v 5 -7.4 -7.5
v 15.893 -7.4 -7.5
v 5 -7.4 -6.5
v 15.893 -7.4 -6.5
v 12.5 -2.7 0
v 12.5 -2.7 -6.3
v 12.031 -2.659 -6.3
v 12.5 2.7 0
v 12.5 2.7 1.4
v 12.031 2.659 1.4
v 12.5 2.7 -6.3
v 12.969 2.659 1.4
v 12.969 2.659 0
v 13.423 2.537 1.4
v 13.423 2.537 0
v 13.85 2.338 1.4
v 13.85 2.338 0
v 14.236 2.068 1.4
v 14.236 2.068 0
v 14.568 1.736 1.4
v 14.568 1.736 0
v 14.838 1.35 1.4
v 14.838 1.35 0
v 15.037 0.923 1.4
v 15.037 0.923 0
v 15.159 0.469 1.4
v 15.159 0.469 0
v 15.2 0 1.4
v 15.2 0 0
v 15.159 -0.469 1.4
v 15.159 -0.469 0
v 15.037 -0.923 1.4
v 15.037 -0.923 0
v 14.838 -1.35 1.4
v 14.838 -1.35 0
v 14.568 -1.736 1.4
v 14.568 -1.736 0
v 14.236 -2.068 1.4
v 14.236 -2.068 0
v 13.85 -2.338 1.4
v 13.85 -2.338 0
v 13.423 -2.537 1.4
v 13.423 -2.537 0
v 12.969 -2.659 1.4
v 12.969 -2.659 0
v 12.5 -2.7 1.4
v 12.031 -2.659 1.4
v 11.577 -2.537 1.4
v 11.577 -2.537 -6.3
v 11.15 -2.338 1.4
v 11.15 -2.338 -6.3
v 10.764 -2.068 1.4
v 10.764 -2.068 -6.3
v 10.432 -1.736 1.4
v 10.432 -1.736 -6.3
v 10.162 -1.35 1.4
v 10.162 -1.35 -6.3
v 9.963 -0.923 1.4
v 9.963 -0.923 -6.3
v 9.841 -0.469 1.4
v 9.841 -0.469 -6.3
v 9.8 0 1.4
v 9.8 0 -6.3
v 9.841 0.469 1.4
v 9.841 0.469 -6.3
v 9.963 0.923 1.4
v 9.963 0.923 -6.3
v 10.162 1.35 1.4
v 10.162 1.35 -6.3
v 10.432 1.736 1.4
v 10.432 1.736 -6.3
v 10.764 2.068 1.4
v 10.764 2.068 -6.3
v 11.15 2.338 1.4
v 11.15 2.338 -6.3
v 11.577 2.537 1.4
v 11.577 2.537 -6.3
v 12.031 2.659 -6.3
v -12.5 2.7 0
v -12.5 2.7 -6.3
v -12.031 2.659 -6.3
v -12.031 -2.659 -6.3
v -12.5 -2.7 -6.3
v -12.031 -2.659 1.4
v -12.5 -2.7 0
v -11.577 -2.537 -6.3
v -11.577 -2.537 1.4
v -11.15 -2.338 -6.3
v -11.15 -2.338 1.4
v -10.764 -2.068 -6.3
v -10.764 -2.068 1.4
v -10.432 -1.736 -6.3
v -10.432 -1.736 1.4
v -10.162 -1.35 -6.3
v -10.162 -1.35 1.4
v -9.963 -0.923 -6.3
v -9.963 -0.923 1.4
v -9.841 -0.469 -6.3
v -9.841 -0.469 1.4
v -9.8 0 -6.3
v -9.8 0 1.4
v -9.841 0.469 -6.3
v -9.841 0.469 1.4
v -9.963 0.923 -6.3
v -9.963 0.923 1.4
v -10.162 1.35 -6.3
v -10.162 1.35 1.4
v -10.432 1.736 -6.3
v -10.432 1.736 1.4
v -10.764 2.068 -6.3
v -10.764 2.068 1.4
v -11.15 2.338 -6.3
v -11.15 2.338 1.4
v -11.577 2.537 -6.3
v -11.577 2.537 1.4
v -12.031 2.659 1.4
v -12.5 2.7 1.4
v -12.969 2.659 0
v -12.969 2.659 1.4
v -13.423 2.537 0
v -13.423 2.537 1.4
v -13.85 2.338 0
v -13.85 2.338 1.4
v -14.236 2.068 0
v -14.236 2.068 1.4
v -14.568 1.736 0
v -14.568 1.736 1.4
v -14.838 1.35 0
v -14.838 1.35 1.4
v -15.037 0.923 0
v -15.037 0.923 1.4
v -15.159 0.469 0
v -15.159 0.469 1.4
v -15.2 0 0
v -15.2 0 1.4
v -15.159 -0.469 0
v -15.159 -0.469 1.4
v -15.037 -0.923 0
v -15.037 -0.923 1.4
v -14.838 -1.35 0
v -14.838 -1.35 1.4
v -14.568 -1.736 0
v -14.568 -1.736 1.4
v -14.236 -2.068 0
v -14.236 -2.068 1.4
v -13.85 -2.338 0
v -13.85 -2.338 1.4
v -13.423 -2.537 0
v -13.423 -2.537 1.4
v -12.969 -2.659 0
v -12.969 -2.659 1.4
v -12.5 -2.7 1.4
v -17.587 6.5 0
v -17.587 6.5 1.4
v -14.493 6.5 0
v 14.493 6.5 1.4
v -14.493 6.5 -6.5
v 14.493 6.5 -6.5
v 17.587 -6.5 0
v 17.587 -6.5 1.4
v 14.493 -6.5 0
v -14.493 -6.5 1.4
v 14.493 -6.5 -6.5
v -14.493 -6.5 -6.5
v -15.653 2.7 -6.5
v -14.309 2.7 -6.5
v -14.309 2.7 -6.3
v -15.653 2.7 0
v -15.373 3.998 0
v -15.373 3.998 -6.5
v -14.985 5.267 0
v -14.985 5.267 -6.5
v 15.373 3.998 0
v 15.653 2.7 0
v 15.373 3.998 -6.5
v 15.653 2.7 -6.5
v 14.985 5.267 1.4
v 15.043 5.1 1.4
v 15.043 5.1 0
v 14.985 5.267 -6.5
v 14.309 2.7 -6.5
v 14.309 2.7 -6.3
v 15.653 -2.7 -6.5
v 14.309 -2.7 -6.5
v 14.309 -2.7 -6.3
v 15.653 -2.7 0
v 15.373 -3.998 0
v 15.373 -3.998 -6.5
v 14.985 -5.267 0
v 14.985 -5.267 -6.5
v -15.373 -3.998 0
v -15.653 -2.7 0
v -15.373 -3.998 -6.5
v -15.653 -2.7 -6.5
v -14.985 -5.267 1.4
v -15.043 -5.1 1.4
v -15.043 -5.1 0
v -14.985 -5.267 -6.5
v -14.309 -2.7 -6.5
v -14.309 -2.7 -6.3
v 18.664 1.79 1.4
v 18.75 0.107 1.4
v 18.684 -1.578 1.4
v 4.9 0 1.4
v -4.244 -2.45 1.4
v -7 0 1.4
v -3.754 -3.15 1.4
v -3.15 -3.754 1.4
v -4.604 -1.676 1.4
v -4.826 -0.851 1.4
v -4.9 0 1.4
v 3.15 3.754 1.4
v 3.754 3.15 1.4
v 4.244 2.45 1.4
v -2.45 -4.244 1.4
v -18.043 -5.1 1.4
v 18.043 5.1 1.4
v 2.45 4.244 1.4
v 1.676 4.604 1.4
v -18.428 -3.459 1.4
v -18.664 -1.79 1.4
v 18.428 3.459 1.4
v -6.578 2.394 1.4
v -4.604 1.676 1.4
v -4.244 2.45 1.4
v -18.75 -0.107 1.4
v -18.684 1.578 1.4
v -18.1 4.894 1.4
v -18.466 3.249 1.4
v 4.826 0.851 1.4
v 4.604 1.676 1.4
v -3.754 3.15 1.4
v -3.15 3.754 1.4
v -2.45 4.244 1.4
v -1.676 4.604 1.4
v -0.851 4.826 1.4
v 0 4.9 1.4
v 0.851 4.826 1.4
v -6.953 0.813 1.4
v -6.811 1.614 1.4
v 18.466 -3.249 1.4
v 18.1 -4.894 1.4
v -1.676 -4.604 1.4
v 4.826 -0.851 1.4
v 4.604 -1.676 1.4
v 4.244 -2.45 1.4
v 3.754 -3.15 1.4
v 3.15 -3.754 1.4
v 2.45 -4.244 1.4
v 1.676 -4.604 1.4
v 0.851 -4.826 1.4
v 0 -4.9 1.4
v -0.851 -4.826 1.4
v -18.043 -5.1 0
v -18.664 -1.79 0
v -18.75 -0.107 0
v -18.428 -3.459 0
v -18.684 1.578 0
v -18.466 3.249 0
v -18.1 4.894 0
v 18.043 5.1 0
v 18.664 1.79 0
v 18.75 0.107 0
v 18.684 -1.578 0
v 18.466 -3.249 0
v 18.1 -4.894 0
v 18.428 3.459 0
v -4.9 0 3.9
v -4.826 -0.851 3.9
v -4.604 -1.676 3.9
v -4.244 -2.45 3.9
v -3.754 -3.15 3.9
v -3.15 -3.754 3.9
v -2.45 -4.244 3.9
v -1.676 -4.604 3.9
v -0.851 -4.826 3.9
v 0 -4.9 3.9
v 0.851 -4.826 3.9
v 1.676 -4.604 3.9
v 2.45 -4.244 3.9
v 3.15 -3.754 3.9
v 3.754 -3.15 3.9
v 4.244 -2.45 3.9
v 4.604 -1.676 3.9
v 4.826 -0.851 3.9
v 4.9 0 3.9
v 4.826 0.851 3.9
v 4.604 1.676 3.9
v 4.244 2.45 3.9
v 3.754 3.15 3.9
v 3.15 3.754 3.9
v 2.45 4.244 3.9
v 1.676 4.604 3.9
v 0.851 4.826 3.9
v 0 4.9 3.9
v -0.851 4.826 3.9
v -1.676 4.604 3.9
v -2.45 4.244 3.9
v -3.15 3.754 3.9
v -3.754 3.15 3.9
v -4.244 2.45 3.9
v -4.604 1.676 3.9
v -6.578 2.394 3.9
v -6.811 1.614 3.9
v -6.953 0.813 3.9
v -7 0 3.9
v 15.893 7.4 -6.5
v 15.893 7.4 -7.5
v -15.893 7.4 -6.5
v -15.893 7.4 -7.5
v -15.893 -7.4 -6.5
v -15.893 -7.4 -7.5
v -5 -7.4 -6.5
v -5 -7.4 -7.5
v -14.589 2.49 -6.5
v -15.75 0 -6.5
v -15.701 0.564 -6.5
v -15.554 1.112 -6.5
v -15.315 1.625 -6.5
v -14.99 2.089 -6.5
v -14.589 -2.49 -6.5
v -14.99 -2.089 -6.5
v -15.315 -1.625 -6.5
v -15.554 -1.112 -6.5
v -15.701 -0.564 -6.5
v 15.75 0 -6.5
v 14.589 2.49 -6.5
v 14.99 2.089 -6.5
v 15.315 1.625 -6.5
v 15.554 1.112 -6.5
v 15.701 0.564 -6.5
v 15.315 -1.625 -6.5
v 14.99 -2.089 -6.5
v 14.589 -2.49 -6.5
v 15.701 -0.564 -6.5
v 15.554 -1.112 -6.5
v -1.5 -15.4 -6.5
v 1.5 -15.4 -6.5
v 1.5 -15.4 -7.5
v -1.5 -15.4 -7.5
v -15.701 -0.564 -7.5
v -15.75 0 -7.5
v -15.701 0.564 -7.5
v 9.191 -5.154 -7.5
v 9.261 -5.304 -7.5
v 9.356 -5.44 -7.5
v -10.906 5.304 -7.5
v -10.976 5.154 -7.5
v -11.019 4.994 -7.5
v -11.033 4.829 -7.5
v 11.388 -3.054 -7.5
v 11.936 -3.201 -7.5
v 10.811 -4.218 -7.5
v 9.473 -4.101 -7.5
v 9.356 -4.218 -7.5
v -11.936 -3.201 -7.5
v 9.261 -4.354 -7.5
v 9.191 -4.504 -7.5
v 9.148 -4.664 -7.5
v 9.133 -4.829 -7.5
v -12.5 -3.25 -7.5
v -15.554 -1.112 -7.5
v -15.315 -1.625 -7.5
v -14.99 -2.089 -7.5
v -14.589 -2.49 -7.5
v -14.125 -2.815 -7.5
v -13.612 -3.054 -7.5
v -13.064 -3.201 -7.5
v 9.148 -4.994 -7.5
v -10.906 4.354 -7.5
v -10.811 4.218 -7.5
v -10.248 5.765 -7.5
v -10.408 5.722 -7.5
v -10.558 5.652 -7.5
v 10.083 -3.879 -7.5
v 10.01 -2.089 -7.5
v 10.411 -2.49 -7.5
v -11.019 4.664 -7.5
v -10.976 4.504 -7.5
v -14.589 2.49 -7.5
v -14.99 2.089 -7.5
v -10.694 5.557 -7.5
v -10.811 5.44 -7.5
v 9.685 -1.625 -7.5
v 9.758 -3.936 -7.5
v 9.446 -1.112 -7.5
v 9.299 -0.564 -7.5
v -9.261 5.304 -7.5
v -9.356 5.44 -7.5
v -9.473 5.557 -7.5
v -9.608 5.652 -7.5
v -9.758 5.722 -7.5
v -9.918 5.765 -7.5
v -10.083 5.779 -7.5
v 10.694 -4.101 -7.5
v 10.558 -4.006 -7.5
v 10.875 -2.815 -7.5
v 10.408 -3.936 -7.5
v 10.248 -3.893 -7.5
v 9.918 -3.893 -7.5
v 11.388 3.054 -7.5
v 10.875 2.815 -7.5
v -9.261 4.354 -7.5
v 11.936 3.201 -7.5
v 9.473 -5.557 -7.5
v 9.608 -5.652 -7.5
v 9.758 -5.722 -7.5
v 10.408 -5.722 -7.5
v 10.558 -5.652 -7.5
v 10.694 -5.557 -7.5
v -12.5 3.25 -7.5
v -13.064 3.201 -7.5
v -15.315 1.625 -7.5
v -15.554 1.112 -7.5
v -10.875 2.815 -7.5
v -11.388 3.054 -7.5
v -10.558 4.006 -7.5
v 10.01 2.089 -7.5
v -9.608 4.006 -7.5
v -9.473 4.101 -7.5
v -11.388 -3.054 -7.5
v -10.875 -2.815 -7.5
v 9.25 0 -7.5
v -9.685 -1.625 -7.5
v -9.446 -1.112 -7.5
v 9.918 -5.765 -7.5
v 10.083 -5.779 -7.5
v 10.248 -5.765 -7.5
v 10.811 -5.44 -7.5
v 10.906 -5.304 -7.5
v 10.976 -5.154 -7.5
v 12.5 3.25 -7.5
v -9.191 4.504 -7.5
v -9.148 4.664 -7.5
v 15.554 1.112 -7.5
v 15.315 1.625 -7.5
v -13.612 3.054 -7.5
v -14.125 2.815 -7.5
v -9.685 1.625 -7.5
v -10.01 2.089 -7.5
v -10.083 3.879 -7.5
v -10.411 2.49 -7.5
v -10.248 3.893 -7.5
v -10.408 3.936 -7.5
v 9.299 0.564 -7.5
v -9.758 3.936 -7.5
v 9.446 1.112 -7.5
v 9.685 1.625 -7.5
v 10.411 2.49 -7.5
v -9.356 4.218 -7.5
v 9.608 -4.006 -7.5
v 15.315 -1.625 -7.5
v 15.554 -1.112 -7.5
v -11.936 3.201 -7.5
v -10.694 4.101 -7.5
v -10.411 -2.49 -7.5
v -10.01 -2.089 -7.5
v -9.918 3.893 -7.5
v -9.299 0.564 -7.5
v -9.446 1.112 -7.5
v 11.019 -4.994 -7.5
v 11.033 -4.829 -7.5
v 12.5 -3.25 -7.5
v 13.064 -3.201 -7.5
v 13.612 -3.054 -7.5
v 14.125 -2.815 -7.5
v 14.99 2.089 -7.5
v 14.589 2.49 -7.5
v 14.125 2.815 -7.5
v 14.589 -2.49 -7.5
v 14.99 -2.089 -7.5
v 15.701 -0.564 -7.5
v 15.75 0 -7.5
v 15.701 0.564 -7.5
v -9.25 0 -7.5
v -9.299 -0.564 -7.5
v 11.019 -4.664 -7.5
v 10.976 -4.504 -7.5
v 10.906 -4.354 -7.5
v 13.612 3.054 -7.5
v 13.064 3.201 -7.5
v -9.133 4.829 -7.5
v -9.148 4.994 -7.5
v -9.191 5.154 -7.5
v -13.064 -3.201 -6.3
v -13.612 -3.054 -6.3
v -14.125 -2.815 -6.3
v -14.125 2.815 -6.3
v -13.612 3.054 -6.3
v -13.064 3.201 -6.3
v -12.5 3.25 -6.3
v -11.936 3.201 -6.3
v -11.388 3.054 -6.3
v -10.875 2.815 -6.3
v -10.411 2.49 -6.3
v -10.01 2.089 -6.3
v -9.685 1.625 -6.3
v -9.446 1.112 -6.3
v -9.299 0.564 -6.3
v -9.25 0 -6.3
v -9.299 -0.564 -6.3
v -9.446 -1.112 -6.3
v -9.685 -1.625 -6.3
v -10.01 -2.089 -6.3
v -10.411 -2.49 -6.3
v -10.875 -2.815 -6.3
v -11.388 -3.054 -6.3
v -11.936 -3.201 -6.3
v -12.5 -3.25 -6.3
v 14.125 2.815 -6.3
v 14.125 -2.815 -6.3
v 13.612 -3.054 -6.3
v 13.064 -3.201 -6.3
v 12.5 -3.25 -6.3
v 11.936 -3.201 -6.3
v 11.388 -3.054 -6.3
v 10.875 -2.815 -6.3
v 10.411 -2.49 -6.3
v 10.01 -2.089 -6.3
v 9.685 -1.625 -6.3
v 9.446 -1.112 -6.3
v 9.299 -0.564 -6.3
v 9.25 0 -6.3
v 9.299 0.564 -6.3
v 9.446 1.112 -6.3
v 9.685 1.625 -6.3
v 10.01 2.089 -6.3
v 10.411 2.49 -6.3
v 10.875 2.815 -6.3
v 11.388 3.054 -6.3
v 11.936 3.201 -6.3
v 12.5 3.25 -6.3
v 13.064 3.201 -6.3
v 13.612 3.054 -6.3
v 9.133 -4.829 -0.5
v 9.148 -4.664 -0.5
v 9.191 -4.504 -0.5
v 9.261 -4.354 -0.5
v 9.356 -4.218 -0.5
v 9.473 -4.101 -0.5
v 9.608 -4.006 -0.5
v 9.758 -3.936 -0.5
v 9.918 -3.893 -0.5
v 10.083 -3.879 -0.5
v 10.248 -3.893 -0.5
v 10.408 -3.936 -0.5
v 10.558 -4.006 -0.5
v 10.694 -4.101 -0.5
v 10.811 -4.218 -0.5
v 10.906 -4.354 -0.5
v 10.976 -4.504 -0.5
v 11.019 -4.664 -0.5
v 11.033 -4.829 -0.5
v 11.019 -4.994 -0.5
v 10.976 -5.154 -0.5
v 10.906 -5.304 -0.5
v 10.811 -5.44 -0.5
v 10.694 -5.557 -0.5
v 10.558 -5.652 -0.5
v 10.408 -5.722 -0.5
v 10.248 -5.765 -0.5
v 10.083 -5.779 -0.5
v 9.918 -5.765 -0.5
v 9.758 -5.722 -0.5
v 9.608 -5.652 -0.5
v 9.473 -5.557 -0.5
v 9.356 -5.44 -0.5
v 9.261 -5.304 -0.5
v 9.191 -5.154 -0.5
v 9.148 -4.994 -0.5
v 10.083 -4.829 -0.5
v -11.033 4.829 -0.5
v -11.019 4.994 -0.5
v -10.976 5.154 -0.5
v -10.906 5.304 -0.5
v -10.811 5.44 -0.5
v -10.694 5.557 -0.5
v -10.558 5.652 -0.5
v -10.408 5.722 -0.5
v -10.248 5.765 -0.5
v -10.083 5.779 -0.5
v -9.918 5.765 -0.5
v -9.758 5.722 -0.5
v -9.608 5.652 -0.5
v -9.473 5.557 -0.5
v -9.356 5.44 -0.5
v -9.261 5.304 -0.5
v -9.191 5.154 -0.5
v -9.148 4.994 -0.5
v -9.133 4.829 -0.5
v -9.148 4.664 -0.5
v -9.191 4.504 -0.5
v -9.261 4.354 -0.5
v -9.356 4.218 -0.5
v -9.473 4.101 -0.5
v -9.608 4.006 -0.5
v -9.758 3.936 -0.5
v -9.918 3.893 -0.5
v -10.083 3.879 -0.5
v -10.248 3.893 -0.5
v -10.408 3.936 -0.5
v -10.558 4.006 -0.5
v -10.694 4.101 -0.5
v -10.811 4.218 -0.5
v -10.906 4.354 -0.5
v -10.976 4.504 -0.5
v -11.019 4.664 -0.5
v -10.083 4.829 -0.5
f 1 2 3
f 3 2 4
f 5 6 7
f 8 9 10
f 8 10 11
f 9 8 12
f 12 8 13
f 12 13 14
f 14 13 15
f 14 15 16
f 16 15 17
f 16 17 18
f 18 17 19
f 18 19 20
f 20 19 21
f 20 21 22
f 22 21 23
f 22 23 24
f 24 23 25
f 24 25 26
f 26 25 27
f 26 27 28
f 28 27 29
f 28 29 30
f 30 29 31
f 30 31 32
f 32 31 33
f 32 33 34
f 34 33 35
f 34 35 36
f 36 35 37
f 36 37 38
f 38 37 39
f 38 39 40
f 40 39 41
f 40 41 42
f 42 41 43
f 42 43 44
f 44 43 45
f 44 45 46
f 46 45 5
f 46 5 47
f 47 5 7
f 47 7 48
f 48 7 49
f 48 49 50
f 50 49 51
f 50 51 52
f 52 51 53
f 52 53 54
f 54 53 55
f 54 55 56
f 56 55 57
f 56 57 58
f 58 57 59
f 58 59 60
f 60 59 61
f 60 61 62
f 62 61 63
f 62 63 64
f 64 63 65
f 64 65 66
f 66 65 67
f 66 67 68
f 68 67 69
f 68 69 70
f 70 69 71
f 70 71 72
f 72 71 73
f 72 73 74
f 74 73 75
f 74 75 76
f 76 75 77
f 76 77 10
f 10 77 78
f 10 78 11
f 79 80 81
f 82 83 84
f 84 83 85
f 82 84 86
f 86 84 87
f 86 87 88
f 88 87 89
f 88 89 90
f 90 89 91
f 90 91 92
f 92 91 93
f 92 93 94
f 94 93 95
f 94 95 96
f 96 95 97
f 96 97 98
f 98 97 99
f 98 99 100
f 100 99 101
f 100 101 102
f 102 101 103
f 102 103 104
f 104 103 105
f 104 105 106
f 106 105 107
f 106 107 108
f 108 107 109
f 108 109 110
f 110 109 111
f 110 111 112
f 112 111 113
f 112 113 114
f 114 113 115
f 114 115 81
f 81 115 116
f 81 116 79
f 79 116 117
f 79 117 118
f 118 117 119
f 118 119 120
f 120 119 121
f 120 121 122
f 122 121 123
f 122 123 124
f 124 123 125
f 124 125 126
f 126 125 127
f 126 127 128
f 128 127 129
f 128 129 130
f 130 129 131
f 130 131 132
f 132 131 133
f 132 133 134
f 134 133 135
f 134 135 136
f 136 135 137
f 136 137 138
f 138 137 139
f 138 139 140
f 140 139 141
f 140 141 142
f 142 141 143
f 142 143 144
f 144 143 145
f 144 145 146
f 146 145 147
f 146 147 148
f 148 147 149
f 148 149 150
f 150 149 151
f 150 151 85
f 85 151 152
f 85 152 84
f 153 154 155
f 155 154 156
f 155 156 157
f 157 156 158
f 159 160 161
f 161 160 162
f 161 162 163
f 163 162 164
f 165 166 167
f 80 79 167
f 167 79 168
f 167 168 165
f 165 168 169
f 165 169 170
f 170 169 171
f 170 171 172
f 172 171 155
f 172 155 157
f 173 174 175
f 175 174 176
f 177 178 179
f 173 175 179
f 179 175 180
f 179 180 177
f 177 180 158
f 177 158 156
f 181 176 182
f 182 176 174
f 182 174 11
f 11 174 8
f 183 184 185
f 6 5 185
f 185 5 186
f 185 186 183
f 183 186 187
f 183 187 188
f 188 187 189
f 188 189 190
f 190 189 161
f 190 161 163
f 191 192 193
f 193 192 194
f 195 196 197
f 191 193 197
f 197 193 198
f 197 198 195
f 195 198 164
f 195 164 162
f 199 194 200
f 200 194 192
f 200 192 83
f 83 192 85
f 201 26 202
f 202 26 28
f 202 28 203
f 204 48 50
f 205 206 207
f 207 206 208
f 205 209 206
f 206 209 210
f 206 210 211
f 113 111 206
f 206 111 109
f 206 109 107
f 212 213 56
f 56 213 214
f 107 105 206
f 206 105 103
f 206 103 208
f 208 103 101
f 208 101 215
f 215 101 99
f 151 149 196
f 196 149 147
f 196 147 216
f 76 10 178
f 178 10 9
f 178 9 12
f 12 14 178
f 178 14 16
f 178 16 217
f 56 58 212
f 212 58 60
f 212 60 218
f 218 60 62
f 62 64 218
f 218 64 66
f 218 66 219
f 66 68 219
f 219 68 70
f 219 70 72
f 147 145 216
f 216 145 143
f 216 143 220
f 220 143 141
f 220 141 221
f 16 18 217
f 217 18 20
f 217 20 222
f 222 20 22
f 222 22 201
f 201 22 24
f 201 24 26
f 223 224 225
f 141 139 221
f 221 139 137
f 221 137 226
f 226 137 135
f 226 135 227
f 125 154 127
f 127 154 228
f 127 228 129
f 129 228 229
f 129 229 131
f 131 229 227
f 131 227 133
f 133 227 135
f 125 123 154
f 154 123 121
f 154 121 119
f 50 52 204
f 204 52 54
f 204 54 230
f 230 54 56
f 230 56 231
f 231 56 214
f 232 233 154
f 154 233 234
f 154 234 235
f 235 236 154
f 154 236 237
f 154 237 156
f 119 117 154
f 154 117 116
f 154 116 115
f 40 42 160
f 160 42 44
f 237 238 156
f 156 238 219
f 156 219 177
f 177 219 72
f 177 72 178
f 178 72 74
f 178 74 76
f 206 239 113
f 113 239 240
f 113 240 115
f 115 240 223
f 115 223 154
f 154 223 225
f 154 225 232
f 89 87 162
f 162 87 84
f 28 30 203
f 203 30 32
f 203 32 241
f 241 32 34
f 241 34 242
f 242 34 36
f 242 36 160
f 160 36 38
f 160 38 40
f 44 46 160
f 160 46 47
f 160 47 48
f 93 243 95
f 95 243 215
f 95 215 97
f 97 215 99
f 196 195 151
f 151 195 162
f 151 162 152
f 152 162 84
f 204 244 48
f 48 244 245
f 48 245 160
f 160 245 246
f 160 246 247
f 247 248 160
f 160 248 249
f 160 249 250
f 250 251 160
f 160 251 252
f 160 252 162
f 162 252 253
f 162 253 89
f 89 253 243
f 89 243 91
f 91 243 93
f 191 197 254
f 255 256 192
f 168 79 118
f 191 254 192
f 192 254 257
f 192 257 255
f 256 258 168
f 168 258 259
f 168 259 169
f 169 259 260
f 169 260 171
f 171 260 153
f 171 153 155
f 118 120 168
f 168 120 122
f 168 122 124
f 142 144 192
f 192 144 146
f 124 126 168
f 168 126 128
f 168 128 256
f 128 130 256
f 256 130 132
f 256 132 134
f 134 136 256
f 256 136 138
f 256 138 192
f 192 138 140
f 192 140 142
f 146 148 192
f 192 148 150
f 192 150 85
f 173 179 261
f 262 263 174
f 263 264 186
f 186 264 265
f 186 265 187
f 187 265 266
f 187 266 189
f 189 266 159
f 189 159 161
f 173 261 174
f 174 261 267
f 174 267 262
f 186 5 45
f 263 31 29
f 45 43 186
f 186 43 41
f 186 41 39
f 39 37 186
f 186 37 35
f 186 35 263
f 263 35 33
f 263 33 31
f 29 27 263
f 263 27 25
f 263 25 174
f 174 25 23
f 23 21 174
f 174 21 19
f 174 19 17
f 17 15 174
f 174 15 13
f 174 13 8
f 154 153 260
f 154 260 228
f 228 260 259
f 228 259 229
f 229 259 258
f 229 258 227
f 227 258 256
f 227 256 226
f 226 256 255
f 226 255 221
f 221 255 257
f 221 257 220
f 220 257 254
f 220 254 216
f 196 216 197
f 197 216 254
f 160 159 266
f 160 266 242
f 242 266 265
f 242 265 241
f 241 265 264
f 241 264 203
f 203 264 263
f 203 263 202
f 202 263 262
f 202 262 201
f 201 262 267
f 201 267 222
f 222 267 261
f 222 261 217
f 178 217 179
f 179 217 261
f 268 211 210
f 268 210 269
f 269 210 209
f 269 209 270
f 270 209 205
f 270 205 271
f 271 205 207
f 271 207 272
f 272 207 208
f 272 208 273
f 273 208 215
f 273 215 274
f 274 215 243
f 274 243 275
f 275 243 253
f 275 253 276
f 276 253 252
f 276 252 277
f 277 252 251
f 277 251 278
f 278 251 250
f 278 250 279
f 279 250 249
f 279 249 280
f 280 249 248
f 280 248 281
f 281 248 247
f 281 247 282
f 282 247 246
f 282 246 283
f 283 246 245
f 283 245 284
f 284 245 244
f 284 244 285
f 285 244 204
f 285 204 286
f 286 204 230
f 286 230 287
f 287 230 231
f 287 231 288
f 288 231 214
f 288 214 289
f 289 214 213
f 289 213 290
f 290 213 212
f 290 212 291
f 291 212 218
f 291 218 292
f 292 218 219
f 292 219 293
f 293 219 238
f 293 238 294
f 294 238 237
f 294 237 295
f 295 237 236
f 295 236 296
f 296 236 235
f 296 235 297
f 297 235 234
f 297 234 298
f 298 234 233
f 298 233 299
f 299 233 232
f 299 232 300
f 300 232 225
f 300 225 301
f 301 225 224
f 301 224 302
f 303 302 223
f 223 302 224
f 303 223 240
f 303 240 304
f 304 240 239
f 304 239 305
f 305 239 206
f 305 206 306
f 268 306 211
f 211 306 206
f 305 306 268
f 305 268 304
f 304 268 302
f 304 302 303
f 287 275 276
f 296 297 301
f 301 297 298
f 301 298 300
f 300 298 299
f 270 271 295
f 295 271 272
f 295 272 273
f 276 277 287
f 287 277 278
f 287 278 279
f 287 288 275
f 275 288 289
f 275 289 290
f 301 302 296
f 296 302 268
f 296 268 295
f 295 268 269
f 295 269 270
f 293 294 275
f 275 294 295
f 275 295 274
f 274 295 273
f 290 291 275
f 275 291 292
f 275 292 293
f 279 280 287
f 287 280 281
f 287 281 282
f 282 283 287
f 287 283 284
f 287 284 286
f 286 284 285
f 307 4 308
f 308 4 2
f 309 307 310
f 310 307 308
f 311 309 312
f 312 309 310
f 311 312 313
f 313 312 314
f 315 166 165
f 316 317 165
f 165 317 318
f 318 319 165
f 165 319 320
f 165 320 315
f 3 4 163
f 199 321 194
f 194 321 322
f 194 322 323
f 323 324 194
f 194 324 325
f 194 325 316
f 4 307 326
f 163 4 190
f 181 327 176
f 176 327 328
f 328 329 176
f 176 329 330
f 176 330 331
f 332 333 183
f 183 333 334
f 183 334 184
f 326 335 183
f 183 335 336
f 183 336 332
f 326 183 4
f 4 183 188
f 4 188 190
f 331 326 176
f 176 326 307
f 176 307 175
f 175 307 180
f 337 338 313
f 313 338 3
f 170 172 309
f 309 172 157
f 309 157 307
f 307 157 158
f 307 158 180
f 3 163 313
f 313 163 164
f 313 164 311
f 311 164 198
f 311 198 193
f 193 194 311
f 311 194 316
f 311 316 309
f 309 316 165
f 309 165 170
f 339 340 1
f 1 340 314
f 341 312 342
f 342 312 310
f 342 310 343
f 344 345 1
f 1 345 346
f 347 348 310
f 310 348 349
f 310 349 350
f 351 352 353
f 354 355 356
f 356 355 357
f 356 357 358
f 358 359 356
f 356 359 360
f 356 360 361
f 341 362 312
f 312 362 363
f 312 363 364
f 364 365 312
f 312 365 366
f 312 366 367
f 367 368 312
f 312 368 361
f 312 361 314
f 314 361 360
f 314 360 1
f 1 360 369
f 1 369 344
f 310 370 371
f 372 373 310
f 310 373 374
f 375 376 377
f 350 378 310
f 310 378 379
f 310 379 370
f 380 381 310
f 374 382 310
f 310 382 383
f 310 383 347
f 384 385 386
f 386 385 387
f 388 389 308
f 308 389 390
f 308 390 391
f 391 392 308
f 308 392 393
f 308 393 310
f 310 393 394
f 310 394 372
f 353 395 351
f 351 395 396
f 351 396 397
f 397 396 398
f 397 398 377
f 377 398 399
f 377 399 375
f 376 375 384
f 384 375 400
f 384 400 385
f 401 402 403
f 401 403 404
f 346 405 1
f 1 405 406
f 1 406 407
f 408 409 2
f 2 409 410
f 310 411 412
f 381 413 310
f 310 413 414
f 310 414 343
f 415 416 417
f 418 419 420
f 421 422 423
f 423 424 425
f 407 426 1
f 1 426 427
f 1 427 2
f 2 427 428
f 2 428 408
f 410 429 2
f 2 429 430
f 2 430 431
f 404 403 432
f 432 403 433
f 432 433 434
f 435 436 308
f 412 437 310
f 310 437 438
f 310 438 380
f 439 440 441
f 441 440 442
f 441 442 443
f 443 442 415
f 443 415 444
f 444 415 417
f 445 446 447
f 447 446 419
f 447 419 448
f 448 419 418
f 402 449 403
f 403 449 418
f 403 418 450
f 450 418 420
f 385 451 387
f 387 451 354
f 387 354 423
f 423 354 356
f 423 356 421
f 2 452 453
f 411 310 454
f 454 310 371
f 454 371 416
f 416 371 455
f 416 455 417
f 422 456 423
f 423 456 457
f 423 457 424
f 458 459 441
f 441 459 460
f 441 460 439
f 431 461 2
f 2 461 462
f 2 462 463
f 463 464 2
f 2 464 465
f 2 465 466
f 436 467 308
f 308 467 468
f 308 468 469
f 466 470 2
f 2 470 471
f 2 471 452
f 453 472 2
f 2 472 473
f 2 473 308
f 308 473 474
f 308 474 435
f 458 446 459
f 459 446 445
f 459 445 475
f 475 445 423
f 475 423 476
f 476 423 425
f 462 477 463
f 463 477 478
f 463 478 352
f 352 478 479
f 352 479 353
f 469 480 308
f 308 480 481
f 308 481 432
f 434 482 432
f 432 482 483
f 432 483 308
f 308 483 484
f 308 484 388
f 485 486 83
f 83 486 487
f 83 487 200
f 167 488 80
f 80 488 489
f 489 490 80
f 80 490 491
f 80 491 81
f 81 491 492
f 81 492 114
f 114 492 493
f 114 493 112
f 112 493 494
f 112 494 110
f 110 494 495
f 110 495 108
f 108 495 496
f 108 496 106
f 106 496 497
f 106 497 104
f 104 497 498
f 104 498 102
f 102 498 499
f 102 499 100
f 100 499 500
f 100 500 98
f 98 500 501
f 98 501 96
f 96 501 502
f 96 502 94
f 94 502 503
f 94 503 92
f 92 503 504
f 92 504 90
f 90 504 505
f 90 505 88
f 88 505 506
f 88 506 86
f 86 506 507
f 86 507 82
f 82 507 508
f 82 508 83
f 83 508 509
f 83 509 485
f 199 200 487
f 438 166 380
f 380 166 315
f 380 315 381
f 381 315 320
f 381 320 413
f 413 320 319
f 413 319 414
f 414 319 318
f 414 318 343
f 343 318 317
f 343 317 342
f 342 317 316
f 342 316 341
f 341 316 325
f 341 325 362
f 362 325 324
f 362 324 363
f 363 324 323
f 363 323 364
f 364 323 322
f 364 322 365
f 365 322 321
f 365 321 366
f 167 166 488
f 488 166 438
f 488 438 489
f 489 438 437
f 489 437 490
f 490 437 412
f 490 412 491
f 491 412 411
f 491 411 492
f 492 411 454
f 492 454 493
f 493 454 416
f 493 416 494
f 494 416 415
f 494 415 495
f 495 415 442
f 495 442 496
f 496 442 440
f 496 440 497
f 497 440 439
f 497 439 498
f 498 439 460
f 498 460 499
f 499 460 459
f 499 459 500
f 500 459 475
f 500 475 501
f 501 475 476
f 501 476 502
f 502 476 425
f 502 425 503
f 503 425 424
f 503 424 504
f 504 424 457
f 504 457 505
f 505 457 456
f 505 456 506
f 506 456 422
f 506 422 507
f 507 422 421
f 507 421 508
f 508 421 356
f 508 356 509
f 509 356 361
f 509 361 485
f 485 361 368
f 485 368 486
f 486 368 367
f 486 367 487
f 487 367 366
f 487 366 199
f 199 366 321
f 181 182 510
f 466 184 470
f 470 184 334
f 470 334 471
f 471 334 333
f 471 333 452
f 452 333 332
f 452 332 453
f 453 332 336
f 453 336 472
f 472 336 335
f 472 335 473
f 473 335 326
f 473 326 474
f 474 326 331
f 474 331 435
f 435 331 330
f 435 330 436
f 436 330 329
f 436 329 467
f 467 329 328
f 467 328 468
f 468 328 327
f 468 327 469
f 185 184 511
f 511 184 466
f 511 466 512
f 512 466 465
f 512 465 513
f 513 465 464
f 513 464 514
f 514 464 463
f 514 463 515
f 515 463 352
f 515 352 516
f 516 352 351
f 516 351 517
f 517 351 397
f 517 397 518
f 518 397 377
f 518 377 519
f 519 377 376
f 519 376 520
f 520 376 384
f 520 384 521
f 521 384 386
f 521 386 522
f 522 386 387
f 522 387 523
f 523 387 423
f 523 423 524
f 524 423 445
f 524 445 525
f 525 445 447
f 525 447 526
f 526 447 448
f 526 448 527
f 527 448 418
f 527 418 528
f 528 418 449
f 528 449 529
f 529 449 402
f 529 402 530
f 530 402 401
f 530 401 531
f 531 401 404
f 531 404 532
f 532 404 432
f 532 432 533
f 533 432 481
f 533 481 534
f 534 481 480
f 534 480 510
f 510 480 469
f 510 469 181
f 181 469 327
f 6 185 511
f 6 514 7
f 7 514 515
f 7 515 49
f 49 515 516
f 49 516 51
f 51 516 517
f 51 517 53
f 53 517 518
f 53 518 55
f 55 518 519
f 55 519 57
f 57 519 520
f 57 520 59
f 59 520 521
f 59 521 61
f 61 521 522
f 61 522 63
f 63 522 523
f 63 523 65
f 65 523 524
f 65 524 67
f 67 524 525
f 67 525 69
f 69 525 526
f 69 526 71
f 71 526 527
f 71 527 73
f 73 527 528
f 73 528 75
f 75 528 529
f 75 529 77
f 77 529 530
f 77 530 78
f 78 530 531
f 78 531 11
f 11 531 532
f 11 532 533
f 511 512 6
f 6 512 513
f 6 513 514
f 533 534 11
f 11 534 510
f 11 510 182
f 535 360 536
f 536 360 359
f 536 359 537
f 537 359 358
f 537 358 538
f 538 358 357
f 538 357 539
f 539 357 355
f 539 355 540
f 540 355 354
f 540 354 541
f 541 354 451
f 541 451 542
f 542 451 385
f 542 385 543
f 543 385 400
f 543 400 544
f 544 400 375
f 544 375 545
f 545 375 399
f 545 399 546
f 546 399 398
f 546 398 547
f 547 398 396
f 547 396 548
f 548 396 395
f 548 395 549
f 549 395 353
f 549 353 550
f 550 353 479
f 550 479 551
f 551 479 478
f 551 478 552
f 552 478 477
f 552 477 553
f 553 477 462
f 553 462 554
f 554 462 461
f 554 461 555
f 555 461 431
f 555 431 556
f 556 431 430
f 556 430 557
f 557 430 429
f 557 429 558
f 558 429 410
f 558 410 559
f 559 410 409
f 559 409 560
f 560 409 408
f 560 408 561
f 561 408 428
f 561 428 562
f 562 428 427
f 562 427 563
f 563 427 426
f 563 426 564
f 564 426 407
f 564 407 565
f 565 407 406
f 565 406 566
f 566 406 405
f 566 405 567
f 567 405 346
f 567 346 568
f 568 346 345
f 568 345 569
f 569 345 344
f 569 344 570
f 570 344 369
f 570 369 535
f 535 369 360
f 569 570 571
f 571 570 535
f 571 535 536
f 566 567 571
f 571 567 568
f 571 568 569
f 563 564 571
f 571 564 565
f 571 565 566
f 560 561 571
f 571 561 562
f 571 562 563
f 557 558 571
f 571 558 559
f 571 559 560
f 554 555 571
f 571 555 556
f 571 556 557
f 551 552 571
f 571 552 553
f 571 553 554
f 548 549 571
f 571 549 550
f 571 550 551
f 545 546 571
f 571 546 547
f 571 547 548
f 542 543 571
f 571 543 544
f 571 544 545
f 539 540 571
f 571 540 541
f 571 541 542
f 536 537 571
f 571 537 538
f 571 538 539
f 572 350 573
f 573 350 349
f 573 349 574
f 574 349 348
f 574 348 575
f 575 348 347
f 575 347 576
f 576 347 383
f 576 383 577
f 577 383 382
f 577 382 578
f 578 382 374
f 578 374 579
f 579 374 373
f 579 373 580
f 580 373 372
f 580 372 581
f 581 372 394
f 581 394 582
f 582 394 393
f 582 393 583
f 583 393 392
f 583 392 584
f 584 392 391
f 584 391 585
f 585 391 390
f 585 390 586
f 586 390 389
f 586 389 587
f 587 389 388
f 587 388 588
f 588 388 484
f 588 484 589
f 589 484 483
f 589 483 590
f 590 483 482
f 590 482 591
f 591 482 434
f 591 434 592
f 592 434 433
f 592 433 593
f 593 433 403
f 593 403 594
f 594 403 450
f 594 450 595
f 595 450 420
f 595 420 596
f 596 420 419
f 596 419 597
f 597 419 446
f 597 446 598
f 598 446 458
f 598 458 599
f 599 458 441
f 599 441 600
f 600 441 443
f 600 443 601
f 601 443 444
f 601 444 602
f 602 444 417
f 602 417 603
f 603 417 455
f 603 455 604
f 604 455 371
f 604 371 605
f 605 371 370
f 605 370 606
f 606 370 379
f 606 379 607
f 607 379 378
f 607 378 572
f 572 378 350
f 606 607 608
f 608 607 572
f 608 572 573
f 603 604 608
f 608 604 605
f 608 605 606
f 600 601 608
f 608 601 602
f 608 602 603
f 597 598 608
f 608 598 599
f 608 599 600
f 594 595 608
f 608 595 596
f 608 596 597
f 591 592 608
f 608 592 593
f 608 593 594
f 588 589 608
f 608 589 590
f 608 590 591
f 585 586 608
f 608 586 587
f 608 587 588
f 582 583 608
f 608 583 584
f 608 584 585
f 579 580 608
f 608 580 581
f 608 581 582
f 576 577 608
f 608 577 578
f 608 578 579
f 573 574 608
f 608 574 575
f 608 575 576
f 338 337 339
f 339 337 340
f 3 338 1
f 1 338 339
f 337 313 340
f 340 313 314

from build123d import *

# Parameters (mm, degrees)
P_IDAT_VYSUNUT_M1_DEPTH  = 1.4
P_IDAT_VYSUNUT_M2_DEPTH  = 2.5
SKICA3_R                 = 2.7
ODEBRAT_VYSUNUT_M1_DEPTH = 2.5
P_IDAT_VYSUNUT_M3_DEPTH  = 7.5
ODEBRAT_START            = -7.5
ODEBRAT_VYSUNUT_M2_DEPTH = 7.5
SKICA9_W                 = 31.786483692
SKICA9_H                 = 14.8
P_IDAT_VYSUNUT_M5_DEPTH  = 1
SKICA6_R                 = 3.25
ODEBRAT_VYSUNUT_M3_DEPTH = 1.2
SKICA7_R                 = 0.95
ODEBRAT_VYSUNUT_M5_DEPTH = 7
P_IDAT_VYSUNUT_M7_DEPTH  = 1


with BuildPart() as part:
    # Skica1 → Přidat vysunutím1 (new body)
    with BuildSketch(Plane.XY):
        with BuildLine():
            ThreePointArc((-17.587282337, 6.5), (-18.735542789, 0.736163289), (-18.043073463, -5.1))
            Line((-18.043073463, -5.1), (-15.043073463, -5.1))
            Line((-15.043073463, -5.1), (-15.043073463, -6.5))
            Line((-15.043073463, -6.5), (17.587282337, -6.5))
            ThreePointArc((17.587282337, -6.5), (18.735542789, -0.736163289), (18.043073463, 5.1))
            Line((18.043073463, 5.1), (15.043073463, 5.1))
            Line((15.043073463, 5.1), (15.043073463, 6.5))
            Line((15.043073463, 6.5), (-17.587282337, 6.5))
        make_face()
    extrude(amount=P_IDAT_VYSUNUT_M1_DEPTH)

    # Skica2 → Přidat vysunutím2 (add)
    with BuildSketch(Plane.XY.offset(1.4)):
        with BuildLine():
            ThreePointArc((-4.9, 0), (4.82555799, -0.850876071), (-4.604493842, 1.675898702))
            Line((-4.604493842, 1.675898702), (-6.577848346, 2.394141003))
            ThreePointArc((-6.577848346, 2.394141003), (-6.893654271, 1.215537244), (-7, 0))
            Line((-7, 0), (-4.9, 0))
        make_face()
    extrude(amount=P_IDAT_VYSUNUT_M2_DEPTH)

    # Skica3 → Odebrat vysunutím1 (cut)
    with BuildSketch(Plane.XY.offset(1.4)):
        with Locations((-12.5, 0)):
            Circle(SKICA3_R)
        with Locations((12.5, 0)):
            Circle(SKICA3_R)
    extrude(amount=-ODEBRAT_VYSUNUT_M1_DEPTH, mode=Mode.SUBTRACT)

    # Skica4 → Přidat vysunutím3 (add)
    with BuildSketch(Plane(origin=(0, 0, 0), x_dir=(-1, 0, 0), z_dir=(0, 0, -1))):
        with BuildLine():
            Line((14.493241846, 6.5), (-14.493241846, 6.5))
            ThreePointArc((-14.493241846, 6.5), (-15.192361337, 4.636401214), (-15.652924941, 2.7))
            Line((-15.652924941, 2.7), (-12.5, 2.7))
            ThreePointArc((-12.5, 2.7), (-10.590811691, 1.909188309), (-9.8, 0))
            ThreePointArc((-9.8, 0), (-10.590811691, -1.909188309), (-12.5, -2.7))
            Line((-12.5, -2.7), (-15.652924941, -2.7))
            ThreePointArc((-15.652924941, -2.7), (-15.192361337, -4.636401214), (-14.493241846, -6.5))
            Line((-14.493241846, -6.5), (14.493241846, -6.5))
            ThreePointArc((14.493241846, -6.5), (15.192361337, -4.636401214), (15.652924941, -2.7))
            Line((15.652924941, -2.7), (12.5, -2.7))
            ThreePointArc((12.5, -2.7), (9.8, 0), (12.5, 2.7))
            Line((12.5, 2.7), (15.652924941, 2.7))
            ThreePointArc((15.652924941, 2.7), (15.192361337, 4.636401214), (14.493241846, 6.5))
        make_face()
    extrude(amount=P_IDAT_VYSUNUT_M3_DEPTH)

    # Skica5 → Odebrat vysunutím2 (cut)
    with BuildSketch(Plane(origin=(0, 0, 0), x_dir=(-1, 0, 0), z_dir=(0, 0, -1)).offset(ODEBRAT_START)):
        with BuildLine():
            Line((15.043073463, -6.5), (15.043073463, -5.1))
            ThreePointArc((15.043073463, -5.1), (14.784738094, -5.80651175), (14.493241846, -6.5))
            Line((14.493241846, -6.5), (15.043073463, -6.5))
        make_face()
        with BuildLine():
            ThreePointArc((-15.043073463, 5.1), (-14.784738094, 5.80651175), (-14.493241846, 6.5))
            Line((-14.493241846, 6.5), (-15.043073463, 6.5))
            Line((-15.043073463, 6.5), (-15.043073463, 5.1))
        make_face()
    extrude(amount=ODEBRAT_VYSUNUT_M2_DEPTH, mode=Mode.SUBTRACT)

    # Skica9 → Přidat vysunutím5 (add)
    with BuildSketch(Plane(origin=(0, 0, -7.5), x_dir=(-1, 0, 0), z_dir=(0, 0, -1))):
        Rectangle(SKICA9_W, SKICA9_H)
    extrude(amount=-P_IDAT_VYSUNUT_M5_DEPTH)

    # Skica6 → Odebrat vysunutím3 (cut)
    with BuildSketch(Plane(origin=(0, 0, -7.5), x_dir=(-1, 0, 0), z_dir=(0, 0, -1))):
        with Locations((-12.5, 0)):
            Circle(SKICA6_R)
        with Locations((12.5, 0)):
            Circle(SKICA6_R)
    extrude(amount=-ODEBRAT_VYSUNUT_M3_DEPTH, mode=Mode.SUBTRACT)

    # Skica7 → Odebrat vysunutím5 (cut)
    with BuildSketch(Plane(origin=(0, 0, -7.5), x_dir=(-1, 0, 0), z_dir=(0, 0, -1))):
        with Locations((10.083296, 4.829031143)):
            Circle(SKICA7_R)
        with Locations((-10.083296, -4.829031143)):
            Circle(SKICA7_R)
    extrude(amount=-ODEBRAT_VYSUNUT_M5_DEPTH, mode=Mode.SUBTRACT)

    # Skica12 → Přidat vysunutím7 (add)
    with BuildSketch(Plane(origin=(0, 0, -7.5), x_dir=(-1, 0, 0), z_dir=(0, 0, -1))):
        Polygon((-5, -7.4), (-1.5, -15.4), (1.5, -15.4), (5, -7.4), align=None)
    extrude(amount=-P_IDAT_VYSUNUT_M7_DEPTH)


solid = part.part
